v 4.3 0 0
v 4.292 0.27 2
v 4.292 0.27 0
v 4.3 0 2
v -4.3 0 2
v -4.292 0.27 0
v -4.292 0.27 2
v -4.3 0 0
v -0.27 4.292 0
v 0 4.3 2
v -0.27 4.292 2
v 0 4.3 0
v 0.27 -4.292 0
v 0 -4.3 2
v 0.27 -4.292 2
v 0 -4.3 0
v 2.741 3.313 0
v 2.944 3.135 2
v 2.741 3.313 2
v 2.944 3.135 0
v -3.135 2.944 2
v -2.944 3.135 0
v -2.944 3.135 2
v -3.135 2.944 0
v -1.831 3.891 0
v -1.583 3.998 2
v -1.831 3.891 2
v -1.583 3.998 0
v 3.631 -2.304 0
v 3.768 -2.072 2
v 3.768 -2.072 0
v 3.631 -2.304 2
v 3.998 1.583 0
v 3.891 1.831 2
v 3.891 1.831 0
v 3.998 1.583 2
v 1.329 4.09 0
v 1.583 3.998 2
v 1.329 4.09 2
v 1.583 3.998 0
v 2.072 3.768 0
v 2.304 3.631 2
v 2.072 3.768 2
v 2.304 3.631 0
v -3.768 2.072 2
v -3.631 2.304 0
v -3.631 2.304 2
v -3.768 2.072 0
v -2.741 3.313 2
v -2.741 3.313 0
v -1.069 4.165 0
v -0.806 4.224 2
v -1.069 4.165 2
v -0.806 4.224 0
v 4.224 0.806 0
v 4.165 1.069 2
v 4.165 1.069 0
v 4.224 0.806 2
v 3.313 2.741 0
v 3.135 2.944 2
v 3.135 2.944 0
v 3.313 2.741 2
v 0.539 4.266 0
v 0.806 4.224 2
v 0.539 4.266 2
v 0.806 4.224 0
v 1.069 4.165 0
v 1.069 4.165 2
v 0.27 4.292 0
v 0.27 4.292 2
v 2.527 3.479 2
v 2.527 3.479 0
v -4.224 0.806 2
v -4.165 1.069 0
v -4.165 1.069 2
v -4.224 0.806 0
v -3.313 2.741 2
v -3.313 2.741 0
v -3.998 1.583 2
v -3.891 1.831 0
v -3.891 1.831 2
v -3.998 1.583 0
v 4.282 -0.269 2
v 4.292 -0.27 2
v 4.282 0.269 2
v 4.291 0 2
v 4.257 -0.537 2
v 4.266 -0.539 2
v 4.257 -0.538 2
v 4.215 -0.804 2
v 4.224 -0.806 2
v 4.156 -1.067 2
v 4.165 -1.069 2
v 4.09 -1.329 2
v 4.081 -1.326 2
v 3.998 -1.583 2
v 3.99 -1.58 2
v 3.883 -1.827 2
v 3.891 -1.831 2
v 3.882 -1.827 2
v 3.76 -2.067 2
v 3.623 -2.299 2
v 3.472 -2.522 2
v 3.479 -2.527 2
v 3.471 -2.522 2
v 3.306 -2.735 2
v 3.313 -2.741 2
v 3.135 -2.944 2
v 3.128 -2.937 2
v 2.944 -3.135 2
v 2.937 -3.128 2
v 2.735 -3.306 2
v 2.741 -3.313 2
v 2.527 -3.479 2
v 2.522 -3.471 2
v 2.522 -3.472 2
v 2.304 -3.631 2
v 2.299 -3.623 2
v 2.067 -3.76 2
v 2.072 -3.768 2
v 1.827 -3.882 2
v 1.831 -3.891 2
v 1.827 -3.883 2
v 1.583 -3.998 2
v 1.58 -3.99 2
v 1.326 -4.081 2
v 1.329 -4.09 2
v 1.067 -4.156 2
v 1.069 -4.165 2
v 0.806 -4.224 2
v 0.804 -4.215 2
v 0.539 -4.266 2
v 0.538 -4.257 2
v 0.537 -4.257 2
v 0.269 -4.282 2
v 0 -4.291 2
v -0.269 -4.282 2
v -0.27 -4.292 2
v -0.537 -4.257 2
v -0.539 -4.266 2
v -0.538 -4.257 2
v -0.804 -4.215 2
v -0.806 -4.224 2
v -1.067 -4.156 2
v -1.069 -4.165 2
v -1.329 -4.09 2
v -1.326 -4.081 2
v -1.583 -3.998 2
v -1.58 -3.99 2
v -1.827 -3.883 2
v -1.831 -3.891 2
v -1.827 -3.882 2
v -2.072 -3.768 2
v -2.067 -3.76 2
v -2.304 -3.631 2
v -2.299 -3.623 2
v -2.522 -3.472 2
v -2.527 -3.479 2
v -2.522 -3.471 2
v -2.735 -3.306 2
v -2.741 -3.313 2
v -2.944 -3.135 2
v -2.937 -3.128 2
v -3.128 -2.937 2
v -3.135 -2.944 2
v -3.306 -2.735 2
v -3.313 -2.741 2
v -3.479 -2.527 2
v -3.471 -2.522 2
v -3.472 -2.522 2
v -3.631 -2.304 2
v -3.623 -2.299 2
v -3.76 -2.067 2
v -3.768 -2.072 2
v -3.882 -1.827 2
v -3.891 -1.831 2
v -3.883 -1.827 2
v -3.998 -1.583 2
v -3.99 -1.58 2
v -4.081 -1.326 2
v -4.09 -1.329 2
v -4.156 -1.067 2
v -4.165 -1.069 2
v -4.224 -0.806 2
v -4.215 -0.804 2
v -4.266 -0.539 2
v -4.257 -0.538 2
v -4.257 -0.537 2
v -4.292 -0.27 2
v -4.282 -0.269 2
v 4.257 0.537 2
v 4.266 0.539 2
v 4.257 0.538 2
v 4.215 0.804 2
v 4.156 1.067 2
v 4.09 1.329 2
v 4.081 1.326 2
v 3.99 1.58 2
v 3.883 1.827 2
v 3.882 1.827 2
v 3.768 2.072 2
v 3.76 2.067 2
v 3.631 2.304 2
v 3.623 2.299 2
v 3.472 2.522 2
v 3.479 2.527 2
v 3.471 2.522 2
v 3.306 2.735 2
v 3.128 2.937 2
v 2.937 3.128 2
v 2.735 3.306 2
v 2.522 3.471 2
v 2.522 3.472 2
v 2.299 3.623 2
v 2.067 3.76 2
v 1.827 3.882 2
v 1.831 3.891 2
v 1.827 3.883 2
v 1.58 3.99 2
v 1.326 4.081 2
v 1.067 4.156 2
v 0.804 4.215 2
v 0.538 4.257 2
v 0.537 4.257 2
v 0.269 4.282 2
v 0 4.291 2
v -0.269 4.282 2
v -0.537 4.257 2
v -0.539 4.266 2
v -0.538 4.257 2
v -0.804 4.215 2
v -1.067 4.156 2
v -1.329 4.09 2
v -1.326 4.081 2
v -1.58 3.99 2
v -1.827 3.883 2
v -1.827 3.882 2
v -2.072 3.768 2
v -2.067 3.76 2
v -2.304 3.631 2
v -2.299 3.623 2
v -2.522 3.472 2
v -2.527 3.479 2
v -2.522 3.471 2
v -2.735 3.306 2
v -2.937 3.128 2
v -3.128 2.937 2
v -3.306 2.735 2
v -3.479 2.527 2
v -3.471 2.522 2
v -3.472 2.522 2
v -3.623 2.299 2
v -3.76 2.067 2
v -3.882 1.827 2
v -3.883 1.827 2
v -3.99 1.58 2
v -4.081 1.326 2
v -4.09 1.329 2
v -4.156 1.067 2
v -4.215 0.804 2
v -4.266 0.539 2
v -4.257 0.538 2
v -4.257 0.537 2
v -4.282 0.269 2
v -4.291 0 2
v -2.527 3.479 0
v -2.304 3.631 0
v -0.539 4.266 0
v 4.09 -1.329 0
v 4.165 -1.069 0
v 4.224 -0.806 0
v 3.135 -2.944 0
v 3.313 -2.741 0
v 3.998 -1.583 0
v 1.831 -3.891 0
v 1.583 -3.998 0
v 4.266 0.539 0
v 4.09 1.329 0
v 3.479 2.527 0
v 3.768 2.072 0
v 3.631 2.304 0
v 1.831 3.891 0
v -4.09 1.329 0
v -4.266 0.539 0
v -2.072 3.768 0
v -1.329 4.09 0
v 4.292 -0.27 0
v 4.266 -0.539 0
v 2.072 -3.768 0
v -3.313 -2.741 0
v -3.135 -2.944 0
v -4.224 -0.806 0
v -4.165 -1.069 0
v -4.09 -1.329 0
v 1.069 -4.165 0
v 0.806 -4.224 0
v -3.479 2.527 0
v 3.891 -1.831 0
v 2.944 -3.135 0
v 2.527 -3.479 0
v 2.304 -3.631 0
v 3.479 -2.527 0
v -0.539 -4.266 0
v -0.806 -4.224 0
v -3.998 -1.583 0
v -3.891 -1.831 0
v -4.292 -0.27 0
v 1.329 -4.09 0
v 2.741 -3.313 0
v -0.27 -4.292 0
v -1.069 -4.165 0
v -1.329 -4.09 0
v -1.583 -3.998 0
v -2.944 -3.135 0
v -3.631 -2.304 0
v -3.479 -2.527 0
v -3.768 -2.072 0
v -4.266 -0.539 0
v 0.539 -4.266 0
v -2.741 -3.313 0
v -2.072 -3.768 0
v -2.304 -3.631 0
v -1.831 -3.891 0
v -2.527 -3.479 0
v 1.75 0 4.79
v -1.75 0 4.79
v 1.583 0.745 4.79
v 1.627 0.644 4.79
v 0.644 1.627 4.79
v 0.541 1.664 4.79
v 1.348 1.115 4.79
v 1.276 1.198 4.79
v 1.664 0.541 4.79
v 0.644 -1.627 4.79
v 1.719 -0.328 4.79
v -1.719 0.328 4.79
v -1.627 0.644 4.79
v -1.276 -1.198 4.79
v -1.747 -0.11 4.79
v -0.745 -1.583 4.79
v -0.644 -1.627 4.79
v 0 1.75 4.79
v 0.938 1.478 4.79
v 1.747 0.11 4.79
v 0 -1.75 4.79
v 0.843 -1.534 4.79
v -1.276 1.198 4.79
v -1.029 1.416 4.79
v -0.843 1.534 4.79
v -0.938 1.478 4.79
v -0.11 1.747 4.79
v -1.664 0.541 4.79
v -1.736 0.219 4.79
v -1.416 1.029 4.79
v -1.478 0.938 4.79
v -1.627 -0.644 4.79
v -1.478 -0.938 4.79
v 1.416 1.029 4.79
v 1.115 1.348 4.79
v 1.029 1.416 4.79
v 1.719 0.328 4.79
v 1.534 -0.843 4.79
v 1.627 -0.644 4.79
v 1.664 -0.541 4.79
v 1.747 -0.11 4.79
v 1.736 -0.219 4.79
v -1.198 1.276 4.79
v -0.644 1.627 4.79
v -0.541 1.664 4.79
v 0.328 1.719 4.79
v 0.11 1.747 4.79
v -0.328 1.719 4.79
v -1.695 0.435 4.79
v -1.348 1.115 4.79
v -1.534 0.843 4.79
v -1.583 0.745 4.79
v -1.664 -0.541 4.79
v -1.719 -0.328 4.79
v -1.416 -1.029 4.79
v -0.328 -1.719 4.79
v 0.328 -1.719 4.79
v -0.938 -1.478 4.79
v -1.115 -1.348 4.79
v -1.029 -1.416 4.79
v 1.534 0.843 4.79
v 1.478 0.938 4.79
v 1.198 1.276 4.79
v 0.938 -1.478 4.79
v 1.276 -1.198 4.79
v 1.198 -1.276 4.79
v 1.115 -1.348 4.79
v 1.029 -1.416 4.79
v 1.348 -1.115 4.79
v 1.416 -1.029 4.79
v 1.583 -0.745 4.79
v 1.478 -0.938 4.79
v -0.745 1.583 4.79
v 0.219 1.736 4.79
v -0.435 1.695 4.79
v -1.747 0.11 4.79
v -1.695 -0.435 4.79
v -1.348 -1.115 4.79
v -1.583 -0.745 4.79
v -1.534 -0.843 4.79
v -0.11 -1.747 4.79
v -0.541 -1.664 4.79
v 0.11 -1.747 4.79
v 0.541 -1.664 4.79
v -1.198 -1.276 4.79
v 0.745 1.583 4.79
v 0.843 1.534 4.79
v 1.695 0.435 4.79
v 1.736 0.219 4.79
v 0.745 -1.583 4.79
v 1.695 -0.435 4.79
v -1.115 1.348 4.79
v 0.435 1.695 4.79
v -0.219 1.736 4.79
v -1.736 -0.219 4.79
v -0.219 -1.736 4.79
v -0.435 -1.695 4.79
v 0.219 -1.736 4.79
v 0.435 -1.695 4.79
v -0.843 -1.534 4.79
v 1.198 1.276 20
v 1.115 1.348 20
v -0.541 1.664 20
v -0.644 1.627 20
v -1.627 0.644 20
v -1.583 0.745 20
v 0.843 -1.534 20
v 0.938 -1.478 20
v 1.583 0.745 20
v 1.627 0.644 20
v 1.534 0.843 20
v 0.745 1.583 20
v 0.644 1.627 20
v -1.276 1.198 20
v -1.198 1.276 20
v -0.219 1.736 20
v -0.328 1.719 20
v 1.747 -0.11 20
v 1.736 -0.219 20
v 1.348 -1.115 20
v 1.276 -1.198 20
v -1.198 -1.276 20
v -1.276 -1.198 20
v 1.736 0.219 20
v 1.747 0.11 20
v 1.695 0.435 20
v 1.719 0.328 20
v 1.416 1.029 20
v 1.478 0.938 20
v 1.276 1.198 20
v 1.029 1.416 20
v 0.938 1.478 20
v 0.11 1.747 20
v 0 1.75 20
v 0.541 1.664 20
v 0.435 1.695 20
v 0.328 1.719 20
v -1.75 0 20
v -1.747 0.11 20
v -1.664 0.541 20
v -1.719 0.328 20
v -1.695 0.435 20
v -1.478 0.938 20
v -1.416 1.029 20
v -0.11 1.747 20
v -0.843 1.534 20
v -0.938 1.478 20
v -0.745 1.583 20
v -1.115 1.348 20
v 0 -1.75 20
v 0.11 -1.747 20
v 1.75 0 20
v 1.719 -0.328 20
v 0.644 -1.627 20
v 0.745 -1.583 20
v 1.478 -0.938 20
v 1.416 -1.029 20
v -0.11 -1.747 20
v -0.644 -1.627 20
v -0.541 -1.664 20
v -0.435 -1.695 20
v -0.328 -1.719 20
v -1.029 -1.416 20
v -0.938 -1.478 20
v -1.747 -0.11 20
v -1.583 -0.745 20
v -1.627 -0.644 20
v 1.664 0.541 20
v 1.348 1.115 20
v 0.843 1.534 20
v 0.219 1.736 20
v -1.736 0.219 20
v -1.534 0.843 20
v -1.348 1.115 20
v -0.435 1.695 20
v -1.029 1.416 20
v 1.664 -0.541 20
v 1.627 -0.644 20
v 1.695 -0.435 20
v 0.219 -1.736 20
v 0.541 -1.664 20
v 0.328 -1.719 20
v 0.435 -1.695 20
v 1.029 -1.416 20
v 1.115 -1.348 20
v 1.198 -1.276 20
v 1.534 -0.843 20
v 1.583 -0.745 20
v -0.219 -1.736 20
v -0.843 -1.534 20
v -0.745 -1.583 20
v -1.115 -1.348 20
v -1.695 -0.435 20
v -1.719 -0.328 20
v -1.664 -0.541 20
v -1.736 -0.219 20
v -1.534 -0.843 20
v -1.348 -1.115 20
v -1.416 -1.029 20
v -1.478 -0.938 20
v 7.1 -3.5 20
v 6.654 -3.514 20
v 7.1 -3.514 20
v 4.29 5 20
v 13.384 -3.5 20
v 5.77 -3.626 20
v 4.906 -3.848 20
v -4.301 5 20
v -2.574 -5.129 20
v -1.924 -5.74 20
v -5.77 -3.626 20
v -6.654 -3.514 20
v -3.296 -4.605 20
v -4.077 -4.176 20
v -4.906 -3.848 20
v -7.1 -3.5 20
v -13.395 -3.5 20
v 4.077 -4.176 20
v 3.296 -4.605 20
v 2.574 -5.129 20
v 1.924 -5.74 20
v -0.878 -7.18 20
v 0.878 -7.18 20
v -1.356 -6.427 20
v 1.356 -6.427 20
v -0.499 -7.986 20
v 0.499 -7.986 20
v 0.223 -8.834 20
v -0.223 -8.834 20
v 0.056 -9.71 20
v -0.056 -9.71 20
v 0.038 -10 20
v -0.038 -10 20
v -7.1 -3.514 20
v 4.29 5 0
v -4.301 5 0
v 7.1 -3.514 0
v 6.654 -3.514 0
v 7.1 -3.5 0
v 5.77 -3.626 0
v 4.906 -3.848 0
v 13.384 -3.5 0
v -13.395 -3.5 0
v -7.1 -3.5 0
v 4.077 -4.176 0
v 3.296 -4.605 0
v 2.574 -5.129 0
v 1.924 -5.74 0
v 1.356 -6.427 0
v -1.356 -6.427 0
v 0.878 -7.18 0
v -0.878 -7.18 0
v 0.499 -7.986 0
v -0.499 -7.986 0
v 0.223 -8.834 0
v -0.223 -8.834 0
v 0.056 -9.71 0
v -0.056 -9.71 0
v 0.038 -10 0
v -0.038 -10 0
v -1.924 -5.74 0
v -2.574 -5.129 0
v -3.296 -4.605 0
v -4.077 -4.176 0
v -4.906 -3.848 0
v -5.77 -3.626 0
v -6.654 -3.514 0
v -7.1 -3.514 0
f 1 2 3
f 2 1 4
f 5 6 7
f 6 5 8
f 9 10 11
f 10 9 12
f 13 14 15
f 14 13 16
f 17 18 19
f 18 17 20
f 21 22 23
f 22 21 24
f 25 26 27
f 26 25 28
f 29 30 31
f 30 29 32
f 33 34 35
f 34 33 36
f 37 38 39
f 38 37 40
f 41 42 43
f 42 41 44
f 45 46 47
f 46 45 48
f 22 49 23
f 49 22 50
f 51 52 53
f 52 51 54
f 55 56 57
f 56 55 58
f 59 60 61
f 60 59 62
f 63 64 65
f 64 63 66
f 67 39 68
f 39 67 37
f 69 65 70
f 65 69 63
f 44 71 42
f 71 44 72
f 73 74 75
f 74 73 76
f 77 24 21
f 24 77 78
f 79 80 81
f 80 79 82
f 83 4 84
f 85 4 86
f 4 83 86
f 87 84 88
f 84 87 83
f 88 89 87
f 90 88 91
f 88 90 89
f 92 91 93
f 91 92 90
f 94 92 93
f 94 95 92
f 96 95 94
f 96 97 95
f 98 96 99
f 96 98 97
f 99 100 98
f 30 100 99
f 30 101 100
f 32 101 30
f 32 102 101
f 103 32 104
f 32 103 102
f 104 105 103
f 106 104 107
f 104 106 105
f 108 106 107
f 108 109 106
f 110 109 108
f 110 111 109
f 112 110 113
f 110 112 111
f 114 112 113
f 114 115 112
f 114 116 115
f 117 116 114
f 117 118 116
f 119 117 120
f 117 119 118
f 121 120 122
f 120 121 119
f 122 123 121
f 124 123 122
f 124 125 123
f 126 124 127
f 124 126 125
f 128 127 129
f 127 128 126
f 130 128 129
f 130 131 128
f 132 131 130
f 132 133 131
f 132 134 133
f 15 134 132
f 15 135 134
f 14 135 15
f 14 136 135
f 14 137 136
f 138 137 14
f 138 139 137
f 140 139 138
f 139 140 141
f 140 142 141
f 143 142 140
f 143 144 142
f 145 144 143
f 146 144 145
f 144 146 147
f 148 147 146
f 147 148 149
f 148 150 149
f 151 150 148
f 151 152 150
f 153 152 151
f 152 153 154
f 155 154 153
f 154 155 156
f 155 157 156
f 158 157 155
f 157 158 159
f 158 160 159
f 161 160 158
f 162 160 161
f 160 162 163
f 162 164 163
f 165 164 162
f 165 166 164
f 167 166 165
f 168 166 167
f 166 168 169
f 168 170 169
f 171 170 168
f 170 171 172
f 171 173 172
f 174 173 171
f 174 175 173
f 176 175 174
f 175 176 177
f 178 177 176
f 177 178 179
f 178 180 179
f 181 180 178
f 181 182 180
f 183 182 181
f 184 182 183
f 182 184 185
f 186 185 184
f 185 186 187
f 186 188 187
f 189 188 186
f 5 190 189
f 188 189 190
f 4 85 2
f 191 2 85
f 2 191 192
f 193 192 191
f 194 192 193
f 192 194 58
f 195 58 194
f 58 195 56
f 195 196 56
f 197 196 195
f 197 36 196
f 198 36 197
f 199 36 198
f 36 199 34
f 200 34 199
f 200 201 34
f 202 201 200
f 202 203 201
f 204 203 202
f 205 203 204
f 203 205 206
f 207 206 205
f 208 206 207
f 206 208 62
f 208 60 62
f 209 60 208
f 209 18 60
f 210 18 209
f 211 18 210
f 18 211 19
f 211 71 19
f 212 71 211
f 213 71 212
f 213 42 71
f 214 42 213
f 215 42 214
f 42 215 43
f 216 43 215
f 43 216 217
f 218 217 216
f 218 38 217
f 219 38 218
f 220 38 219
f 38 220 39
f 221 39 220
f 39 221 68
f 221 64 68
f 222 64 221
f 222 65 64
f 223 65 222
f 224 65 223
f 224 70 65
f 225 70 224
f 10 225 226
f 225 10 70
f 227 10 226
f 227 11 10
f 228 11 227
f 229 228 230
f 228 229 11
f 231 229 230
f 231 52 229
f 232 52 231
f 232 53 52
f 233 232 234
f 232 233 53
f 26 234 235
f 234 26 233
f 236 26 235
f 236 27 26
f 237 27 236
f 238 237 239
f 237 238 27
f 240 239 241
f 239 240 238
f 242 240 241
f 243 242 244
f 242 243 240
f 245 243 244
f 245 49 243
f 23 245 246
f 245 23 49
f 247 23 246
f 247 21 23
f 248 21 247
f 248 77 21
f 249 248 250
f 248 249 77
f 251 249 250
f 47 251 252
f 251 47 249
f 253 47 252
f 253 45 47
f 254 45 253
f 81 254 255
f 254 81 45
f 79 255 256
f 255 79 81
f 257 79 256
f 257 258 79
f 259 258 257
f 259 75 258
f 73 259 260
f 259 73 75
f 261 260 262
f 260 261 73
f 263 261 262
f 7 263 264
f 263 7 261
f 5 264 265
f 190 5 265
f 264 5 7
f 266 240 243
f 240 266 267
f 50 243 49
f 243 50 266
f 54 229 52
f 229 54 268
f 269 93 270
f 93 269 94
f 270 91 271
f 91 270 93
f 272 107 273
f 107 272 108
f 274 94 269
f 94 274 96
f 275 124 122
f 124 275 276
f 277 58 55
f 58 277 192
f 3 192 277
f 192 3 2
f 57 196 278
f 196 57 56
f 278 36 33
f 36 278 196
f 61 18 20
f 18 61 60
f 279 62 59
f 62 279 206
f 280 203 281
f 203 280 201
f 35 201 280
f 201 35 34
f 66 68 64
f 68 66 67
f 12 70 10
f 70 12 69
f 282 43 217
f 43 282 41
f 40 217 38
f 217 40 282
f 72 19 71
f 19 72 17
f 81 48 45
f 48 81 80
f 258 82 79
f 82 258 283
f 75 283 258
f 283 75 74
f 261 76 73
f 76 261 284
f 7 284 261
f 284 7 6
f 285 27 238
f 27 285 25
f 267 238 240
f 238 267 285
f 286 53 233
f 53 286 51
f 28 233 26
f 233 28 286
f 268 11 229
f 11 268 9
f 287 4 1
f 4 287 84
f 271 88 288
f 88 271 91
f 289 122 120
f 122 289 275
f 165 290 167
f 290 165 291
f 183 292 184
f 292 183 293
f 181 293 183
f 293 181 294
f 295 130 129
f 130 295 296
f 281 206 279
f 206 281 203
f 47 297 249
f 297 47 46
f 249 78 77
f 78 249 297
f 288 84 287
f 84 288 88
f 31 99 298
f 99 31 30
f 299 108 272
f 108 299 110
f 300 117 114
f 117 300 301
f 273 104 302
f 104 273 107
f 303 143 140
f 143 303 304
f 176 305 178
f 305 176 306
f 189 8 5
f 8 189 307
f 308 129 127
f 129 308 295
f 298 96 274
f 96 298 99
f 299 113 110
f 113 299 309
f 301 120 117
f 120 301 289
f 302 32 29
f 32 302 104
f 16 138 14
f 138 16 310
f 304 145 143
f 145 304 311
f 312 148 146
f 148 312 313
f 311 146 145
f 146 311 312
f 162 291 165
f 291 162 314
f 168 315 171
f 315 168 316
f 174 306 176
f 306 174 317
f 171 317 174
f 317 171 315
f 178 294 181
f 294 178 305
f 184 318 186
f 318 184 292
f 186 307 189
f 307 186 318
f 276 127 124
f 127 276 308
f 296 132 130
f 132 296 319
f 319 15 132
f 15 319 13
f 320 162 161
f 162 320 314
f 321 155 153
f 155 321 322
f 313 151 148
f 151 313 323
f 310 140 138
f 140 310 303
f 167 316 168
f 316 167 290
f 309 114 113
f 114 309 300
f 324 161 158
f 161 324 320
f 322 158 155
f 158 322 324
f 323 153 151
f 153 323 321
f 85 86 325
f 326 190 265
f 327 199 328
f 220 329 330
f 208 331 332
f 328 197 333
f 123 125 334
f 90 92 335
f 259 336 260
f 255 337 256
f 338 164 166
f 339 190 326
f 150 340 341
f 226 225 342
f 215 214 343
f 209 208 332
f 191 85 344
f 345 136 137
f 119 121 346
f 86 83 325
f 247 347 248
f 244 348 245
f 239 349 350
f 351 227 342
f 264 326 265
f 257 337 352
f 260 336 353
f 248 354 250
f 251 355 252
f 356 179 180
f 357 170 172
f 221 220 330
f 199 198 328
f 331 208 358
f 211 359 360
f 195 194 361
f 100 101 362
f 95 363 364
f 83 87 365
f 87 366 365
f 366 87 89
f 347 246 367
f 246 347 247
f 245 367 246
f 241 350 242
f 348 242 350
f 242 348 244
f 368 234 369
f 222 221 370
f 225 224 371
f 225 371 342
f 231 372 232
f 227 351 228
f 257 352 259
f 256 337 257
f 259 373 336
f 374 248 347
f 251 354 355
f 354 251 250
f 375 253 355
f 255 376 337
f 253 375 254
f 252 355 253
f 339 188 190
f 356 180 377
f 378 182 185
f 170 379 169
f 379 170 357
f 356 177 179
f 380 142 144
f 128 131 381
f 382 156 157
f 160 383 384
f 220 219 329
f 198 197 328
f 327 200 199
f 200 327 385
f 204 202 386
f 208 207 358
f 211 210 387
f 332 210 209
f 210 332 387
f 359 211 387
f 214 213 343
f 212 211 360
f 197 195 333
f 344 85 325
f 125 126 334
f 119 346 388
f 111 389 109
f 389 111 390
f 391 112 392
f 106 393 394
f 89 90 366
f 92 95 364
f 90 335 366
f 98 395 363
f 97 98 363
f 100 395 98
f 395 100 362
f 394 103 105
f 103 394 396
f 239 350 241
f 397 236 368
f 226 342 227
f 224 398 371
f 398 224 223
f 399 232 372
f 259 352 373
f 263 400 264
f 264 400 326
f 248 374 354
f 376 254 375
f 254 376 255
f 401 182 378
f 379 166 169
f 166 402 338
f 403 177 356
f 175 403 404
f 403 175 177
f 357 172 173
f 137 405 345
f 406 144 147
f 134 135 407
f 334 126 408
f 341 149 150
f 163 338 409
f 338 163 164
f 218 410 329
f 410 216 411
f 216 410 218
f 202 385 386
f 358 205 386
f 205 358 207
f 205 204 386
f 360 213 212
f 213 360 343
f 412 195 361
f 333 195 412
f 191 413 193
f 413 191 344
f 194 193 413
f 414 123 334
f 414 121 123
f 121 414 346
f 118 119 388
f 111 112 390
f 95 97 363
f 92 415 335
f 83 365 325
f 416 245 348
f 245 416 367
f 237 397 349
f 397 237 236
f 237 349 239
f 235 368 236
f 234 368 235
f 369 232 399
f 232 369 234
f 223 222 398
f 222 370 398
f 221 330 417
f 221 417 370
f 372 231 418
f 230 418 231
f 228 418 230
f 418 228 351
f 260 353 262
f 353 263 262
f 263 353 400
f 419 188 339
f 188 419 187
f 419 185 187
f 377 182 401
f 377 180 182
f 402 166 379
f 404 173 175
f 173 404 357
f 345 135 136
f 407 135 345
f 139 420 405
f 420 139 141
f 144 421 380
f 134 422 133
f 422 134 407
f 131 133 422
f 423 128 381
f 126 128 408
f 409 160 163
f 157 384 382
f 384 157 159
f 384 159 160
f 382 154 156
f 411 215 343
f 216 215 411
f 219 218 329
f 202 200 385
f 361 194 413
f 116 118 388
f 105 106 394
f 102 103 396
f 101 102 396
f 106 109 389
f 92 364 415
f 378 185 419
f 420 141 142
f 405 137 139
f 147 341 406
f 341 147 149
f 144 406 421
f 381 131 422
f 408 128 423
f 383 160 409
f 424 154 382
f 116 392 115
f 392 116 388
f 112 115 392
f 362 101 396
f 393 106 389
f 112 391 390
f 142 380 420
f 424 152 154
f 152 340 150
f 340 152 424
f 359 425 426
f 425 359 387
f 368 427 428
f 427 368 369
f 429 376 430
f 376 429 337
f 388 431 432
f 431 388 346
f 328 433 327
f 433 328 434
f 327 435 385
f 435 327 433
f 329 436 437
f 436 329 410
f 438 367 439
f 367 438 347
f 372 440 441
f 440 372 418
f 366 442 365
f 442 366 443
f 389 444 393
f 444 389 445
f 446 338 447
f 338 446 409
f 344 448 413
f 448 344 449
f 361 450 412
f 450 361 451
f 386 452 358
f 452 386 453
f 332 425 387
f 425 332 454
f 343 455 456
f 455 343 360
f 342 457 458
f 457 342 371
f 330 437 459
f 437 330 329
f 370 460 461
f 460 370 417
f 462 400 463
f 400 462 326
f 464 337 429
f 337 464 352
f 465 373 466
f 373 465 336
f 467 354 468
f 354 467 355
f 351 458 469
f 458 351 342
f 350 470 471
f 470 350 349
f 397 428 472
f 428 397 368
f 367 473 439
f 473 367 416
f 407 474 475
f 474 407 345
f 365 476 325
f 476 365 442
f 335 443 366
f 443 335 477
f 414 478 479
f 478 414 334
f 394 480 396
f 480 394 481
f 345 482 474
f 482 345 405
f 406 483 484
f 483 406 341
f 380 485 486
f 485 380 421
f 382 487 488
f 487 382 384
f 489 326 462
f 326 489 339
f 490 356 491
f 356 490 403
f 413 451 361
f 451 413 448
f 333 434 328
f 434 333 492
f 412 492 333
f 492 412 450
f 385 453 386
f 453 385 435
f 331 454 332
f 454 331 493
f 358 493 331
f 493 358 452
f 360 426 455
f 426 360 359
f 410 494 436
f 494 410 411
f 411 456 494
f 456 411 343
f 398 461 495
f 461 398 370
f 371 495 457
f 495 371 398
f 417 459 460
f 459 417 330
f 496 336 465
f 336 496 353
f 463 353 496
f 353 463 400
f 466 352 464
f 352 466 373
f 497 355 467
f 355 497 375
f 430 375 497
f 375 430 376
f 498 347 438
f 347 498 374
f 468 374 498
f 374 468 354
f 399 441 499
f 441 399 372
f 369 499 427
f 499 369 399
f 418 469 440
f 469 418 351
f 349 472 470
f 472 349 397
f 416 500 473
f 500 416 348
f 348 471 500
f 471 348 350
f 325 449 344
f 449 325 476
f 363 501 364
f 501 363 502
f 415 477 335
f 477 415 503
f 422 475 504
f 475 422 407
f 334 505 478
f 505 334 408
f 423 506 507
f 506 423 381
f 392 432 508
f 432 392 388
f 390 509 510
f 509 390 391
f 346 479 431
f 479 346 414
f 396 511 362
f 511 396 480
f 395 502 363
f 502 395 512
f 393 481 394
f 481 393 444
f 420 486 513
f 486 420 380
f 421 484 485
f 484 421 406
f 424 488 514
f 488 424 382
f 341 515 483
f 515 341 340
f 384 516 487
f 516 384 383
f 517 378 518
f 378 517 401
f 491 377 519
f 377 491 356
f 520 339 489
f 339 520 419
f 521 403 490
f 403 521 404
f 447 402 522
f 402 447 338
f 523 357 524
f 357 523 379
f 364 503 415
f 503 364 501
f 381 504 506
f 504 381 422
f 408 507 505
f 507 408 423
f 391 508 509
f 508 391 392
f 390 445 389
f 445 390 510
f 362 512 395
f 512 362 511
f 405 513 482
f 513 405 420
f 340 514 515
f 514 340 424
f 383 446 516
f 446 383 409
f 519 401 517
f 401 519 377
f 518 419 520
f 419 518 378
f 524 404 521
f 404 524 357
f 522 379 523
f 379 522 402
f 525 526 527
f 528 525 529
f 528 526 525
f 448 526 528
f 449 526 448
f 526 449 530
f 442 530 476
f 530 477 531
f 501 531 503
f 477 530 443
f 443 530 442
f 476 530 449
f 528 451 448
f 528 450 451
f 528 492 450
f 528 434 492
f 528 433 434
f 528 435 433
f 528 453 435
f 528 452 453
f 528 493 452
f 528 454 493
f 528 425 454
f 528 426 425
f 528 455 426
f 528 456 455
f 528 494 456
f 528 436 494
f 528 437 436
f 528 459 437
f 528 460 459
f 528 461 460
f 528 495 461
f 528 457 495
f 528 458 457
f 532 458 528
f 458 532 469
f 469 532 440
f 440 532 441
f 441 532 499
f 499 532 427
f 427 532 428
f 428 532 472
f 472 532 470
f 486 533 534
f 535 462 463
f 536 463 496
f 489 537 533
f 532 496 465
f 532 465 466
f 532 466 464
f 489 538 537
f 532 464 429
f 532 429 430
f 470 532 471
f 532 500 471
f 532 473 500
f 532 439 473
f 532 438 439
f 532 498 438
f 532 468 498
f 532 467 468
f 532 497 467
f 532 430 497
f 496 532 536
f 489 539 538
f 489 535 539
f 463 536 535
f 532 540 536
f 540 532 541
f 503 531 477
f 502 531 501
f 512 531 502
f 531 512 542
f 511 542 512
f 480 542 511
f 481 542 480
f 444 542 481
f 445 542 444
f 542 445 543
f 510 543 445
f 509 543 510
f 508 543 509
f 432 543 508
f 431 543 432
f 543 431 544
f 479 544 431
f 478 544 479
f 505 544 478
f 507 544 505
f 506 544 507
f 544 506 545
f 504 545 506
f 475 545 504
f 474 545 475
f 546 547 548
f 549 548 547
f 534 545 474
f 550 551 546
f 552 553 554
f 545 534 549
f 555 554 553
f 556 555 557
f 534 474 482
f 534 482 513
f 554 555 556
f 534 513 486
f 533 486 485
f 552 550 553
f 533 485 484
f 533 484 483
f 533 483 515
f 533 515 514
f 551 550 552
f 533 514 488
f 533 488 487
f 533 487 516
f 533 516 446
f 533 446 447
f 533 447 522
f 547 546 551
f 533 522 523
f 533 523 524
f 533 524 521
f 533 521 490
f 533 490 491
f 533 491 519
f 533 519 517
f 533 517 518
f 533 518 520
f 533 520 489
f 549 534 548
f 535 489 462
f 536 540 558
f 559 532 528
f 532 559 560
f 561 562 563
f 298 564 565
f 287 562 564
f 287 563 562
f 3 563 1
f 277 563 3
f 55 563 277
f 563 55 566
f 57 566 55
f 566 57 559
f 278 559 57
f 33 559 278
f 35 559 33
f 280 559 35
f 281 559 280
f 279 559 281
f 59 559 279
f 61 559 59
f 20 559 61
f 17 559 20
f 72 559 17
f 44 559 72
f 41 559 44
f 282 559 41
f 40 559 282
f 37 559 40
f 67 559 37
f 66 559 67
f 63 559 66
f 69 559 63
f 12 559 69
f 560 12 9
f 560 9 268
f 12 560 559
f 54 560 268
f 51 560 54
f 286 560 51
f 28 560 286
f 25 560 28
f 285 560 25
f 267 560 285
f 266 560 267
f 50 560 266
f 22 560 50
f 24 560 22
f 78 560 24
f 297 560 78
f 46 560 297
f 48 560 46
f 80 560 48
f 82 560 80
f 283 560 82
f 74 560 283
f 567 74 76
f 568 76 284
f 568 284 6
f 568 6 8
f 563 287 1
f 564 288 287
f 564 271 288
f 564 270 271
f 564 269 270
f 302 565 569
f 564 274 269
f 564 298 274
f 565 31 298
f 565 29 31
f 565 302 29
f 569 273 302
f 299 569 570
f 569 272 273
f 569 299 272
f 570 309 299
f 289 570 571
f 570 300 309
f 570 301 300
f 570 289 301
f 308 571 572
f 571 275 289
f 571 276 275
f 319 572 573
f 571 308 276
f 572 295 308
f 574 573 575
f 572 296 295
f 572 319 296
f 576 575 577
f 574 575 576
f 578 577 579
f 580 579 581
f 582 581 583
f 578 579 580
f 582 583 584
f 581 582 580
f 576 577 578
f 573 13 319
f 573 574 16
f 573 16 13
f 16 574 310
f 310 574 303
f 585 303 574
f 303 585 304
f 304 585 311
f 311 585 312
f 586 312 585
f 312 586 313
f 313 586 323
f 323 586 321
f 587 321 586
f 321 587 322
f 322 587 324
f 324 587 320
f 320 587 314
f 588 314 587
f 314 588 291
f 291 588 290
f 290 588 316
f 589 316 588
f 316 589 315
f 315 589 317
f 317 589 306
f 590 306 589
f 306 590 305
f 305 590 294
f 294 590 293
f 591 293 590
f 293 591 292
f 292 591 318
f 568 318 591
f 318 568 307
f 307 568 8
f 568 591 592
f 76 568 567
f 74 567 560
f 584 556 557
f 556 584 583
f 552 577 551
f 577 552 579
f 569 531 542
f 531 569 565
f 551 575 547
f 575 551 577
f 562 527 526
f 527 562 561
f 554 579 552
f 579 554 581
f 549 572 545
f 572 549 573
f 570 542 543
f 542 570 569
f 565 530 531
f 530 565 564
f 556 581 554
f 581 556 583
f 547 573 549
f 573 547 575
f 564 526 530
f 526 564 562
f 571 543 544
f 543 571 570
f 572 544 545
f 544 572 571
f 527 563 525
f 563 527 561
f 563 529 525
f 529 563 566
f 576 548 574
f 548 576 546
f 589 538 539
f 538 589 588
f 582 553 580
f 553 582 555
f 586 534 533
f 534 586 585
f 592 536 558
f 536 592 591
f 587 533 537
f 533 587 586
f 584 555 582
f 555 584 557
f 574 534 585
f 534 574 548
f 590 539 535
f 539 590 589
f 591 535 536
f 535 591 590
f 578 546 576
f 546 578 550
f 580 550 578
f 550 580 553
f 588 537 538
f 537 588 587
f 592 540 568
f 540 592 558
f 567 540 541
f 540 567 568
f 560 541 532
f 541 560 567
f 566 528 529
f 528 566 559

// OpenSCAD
// file: Screws.scad
e=.01;
$fn=100;

function s1_25() = // Drywall 1 1/4" screw
    let(total_len = 32.3)
    let(thread = 21.5)
    let(shank = 8)
    let(d_shank = 3.5)
    let(d_hat = 8.6)
    [total_len, thread, shank, total_len-thread-shank, d_shank-.5, d_shank, d_hat];

function s2() = // Drywall 2" screw
    let(total_len = 51.4)
    let(thread = 33.5)
    let(shank = 13.3)
    let(d_shank = 3.5)
    let(d_hat = 8.6)
    [total_len, thread, shank, total_len-thread-shank, d_shank-.5, d_shank, d_hat];  

function a10x0x2x2x6mm() = // artika lamp 10mm screw
    let(total_len = 10)
    let(shank = 0)
    let(thread = total_len - shank - 2)
    let(d_shank = 3)
    let(d_hat = 6)
    [total_len, thread, shank, total_len-thread-shank, d_shank-.5, d_shank, d_hat];  

module screw(a, p=0.){
    total_len=a[0]; thread=a[1]; shank=a[2]; hat=a[3]; d_thread=a[4]; d_shank=a[5]; d_hat=a[6];
    union(){
        if( p > 0.) {
            translate([0,0,-p+e])
            cylinder(p,d1=d_hat,d2=d_hat);
        }
        cylinder(hat,d1=d_hat,d2=d_shank);
        translate([0,0,hat-e])
        if( p > 0.) {
            cylinder(shank+thread+p, d1=d_shank, d2=d_shank);
        }else{
            union(){
                cylinder(shank, d1=d_shank, d2=d_shank);
                translate([0,0,shank-e])
                cylinder(thread, d1=d_thread, d2=d_thread);
            }
        }
    }
}

//screw(s1_25());
//translate([10,0,0]) screw(s1_25(),5);
//translate([20,0,0]) screw(s2());
//translate([30,0,0]) screw(s2(),5);
// main file
use <Screws.scad>
wing=15;
depth=5;
r=7.1;
trap=5;
adj=1.5;
h=20;
sink=2.;
e=.01;
d_hat = s1_25()[6];

y_cir = depth+r-adj;

x = wing-d_hat/2 + e;
y = 2 * depth + e;
diag = sqrt(x*x + y*y);
y_angle = atan(y/x);
$fn =50;

difference(){
    translate([-wing,-depth-trap,0]) 
        cube([2*wing,2*depth+trap,h]);
    
    translate([r,-y_cir,-e]) 
        cylinder(r1=r,r2=r,h=h+2*e);
    translate([r,-y_cir,-e]) 
        cube([wing-r+e,r,h+2*e]);
    
    translate([-r,-y_cir,-e]) 
        cylinder(r1=r,r2=r,h=h+2*e);
    translate([-wing-e,-y_cir,-e]) 
        cube([wing-r+e,r,h+2*e]);
    
    translate([0,0,sink-e]) 
        screw(s1_25(),sink+2*e);
    translate([-wing,-depth,-e]) 
        rotate([0,0,y_angle])
           cube([diag,diag/2,h+2*e]);
    translate([wing-x,depth,-e]) 
        rotate([0,0,-y_angle])
           cube([diag,diag/2,h+2*e]);
    
}
